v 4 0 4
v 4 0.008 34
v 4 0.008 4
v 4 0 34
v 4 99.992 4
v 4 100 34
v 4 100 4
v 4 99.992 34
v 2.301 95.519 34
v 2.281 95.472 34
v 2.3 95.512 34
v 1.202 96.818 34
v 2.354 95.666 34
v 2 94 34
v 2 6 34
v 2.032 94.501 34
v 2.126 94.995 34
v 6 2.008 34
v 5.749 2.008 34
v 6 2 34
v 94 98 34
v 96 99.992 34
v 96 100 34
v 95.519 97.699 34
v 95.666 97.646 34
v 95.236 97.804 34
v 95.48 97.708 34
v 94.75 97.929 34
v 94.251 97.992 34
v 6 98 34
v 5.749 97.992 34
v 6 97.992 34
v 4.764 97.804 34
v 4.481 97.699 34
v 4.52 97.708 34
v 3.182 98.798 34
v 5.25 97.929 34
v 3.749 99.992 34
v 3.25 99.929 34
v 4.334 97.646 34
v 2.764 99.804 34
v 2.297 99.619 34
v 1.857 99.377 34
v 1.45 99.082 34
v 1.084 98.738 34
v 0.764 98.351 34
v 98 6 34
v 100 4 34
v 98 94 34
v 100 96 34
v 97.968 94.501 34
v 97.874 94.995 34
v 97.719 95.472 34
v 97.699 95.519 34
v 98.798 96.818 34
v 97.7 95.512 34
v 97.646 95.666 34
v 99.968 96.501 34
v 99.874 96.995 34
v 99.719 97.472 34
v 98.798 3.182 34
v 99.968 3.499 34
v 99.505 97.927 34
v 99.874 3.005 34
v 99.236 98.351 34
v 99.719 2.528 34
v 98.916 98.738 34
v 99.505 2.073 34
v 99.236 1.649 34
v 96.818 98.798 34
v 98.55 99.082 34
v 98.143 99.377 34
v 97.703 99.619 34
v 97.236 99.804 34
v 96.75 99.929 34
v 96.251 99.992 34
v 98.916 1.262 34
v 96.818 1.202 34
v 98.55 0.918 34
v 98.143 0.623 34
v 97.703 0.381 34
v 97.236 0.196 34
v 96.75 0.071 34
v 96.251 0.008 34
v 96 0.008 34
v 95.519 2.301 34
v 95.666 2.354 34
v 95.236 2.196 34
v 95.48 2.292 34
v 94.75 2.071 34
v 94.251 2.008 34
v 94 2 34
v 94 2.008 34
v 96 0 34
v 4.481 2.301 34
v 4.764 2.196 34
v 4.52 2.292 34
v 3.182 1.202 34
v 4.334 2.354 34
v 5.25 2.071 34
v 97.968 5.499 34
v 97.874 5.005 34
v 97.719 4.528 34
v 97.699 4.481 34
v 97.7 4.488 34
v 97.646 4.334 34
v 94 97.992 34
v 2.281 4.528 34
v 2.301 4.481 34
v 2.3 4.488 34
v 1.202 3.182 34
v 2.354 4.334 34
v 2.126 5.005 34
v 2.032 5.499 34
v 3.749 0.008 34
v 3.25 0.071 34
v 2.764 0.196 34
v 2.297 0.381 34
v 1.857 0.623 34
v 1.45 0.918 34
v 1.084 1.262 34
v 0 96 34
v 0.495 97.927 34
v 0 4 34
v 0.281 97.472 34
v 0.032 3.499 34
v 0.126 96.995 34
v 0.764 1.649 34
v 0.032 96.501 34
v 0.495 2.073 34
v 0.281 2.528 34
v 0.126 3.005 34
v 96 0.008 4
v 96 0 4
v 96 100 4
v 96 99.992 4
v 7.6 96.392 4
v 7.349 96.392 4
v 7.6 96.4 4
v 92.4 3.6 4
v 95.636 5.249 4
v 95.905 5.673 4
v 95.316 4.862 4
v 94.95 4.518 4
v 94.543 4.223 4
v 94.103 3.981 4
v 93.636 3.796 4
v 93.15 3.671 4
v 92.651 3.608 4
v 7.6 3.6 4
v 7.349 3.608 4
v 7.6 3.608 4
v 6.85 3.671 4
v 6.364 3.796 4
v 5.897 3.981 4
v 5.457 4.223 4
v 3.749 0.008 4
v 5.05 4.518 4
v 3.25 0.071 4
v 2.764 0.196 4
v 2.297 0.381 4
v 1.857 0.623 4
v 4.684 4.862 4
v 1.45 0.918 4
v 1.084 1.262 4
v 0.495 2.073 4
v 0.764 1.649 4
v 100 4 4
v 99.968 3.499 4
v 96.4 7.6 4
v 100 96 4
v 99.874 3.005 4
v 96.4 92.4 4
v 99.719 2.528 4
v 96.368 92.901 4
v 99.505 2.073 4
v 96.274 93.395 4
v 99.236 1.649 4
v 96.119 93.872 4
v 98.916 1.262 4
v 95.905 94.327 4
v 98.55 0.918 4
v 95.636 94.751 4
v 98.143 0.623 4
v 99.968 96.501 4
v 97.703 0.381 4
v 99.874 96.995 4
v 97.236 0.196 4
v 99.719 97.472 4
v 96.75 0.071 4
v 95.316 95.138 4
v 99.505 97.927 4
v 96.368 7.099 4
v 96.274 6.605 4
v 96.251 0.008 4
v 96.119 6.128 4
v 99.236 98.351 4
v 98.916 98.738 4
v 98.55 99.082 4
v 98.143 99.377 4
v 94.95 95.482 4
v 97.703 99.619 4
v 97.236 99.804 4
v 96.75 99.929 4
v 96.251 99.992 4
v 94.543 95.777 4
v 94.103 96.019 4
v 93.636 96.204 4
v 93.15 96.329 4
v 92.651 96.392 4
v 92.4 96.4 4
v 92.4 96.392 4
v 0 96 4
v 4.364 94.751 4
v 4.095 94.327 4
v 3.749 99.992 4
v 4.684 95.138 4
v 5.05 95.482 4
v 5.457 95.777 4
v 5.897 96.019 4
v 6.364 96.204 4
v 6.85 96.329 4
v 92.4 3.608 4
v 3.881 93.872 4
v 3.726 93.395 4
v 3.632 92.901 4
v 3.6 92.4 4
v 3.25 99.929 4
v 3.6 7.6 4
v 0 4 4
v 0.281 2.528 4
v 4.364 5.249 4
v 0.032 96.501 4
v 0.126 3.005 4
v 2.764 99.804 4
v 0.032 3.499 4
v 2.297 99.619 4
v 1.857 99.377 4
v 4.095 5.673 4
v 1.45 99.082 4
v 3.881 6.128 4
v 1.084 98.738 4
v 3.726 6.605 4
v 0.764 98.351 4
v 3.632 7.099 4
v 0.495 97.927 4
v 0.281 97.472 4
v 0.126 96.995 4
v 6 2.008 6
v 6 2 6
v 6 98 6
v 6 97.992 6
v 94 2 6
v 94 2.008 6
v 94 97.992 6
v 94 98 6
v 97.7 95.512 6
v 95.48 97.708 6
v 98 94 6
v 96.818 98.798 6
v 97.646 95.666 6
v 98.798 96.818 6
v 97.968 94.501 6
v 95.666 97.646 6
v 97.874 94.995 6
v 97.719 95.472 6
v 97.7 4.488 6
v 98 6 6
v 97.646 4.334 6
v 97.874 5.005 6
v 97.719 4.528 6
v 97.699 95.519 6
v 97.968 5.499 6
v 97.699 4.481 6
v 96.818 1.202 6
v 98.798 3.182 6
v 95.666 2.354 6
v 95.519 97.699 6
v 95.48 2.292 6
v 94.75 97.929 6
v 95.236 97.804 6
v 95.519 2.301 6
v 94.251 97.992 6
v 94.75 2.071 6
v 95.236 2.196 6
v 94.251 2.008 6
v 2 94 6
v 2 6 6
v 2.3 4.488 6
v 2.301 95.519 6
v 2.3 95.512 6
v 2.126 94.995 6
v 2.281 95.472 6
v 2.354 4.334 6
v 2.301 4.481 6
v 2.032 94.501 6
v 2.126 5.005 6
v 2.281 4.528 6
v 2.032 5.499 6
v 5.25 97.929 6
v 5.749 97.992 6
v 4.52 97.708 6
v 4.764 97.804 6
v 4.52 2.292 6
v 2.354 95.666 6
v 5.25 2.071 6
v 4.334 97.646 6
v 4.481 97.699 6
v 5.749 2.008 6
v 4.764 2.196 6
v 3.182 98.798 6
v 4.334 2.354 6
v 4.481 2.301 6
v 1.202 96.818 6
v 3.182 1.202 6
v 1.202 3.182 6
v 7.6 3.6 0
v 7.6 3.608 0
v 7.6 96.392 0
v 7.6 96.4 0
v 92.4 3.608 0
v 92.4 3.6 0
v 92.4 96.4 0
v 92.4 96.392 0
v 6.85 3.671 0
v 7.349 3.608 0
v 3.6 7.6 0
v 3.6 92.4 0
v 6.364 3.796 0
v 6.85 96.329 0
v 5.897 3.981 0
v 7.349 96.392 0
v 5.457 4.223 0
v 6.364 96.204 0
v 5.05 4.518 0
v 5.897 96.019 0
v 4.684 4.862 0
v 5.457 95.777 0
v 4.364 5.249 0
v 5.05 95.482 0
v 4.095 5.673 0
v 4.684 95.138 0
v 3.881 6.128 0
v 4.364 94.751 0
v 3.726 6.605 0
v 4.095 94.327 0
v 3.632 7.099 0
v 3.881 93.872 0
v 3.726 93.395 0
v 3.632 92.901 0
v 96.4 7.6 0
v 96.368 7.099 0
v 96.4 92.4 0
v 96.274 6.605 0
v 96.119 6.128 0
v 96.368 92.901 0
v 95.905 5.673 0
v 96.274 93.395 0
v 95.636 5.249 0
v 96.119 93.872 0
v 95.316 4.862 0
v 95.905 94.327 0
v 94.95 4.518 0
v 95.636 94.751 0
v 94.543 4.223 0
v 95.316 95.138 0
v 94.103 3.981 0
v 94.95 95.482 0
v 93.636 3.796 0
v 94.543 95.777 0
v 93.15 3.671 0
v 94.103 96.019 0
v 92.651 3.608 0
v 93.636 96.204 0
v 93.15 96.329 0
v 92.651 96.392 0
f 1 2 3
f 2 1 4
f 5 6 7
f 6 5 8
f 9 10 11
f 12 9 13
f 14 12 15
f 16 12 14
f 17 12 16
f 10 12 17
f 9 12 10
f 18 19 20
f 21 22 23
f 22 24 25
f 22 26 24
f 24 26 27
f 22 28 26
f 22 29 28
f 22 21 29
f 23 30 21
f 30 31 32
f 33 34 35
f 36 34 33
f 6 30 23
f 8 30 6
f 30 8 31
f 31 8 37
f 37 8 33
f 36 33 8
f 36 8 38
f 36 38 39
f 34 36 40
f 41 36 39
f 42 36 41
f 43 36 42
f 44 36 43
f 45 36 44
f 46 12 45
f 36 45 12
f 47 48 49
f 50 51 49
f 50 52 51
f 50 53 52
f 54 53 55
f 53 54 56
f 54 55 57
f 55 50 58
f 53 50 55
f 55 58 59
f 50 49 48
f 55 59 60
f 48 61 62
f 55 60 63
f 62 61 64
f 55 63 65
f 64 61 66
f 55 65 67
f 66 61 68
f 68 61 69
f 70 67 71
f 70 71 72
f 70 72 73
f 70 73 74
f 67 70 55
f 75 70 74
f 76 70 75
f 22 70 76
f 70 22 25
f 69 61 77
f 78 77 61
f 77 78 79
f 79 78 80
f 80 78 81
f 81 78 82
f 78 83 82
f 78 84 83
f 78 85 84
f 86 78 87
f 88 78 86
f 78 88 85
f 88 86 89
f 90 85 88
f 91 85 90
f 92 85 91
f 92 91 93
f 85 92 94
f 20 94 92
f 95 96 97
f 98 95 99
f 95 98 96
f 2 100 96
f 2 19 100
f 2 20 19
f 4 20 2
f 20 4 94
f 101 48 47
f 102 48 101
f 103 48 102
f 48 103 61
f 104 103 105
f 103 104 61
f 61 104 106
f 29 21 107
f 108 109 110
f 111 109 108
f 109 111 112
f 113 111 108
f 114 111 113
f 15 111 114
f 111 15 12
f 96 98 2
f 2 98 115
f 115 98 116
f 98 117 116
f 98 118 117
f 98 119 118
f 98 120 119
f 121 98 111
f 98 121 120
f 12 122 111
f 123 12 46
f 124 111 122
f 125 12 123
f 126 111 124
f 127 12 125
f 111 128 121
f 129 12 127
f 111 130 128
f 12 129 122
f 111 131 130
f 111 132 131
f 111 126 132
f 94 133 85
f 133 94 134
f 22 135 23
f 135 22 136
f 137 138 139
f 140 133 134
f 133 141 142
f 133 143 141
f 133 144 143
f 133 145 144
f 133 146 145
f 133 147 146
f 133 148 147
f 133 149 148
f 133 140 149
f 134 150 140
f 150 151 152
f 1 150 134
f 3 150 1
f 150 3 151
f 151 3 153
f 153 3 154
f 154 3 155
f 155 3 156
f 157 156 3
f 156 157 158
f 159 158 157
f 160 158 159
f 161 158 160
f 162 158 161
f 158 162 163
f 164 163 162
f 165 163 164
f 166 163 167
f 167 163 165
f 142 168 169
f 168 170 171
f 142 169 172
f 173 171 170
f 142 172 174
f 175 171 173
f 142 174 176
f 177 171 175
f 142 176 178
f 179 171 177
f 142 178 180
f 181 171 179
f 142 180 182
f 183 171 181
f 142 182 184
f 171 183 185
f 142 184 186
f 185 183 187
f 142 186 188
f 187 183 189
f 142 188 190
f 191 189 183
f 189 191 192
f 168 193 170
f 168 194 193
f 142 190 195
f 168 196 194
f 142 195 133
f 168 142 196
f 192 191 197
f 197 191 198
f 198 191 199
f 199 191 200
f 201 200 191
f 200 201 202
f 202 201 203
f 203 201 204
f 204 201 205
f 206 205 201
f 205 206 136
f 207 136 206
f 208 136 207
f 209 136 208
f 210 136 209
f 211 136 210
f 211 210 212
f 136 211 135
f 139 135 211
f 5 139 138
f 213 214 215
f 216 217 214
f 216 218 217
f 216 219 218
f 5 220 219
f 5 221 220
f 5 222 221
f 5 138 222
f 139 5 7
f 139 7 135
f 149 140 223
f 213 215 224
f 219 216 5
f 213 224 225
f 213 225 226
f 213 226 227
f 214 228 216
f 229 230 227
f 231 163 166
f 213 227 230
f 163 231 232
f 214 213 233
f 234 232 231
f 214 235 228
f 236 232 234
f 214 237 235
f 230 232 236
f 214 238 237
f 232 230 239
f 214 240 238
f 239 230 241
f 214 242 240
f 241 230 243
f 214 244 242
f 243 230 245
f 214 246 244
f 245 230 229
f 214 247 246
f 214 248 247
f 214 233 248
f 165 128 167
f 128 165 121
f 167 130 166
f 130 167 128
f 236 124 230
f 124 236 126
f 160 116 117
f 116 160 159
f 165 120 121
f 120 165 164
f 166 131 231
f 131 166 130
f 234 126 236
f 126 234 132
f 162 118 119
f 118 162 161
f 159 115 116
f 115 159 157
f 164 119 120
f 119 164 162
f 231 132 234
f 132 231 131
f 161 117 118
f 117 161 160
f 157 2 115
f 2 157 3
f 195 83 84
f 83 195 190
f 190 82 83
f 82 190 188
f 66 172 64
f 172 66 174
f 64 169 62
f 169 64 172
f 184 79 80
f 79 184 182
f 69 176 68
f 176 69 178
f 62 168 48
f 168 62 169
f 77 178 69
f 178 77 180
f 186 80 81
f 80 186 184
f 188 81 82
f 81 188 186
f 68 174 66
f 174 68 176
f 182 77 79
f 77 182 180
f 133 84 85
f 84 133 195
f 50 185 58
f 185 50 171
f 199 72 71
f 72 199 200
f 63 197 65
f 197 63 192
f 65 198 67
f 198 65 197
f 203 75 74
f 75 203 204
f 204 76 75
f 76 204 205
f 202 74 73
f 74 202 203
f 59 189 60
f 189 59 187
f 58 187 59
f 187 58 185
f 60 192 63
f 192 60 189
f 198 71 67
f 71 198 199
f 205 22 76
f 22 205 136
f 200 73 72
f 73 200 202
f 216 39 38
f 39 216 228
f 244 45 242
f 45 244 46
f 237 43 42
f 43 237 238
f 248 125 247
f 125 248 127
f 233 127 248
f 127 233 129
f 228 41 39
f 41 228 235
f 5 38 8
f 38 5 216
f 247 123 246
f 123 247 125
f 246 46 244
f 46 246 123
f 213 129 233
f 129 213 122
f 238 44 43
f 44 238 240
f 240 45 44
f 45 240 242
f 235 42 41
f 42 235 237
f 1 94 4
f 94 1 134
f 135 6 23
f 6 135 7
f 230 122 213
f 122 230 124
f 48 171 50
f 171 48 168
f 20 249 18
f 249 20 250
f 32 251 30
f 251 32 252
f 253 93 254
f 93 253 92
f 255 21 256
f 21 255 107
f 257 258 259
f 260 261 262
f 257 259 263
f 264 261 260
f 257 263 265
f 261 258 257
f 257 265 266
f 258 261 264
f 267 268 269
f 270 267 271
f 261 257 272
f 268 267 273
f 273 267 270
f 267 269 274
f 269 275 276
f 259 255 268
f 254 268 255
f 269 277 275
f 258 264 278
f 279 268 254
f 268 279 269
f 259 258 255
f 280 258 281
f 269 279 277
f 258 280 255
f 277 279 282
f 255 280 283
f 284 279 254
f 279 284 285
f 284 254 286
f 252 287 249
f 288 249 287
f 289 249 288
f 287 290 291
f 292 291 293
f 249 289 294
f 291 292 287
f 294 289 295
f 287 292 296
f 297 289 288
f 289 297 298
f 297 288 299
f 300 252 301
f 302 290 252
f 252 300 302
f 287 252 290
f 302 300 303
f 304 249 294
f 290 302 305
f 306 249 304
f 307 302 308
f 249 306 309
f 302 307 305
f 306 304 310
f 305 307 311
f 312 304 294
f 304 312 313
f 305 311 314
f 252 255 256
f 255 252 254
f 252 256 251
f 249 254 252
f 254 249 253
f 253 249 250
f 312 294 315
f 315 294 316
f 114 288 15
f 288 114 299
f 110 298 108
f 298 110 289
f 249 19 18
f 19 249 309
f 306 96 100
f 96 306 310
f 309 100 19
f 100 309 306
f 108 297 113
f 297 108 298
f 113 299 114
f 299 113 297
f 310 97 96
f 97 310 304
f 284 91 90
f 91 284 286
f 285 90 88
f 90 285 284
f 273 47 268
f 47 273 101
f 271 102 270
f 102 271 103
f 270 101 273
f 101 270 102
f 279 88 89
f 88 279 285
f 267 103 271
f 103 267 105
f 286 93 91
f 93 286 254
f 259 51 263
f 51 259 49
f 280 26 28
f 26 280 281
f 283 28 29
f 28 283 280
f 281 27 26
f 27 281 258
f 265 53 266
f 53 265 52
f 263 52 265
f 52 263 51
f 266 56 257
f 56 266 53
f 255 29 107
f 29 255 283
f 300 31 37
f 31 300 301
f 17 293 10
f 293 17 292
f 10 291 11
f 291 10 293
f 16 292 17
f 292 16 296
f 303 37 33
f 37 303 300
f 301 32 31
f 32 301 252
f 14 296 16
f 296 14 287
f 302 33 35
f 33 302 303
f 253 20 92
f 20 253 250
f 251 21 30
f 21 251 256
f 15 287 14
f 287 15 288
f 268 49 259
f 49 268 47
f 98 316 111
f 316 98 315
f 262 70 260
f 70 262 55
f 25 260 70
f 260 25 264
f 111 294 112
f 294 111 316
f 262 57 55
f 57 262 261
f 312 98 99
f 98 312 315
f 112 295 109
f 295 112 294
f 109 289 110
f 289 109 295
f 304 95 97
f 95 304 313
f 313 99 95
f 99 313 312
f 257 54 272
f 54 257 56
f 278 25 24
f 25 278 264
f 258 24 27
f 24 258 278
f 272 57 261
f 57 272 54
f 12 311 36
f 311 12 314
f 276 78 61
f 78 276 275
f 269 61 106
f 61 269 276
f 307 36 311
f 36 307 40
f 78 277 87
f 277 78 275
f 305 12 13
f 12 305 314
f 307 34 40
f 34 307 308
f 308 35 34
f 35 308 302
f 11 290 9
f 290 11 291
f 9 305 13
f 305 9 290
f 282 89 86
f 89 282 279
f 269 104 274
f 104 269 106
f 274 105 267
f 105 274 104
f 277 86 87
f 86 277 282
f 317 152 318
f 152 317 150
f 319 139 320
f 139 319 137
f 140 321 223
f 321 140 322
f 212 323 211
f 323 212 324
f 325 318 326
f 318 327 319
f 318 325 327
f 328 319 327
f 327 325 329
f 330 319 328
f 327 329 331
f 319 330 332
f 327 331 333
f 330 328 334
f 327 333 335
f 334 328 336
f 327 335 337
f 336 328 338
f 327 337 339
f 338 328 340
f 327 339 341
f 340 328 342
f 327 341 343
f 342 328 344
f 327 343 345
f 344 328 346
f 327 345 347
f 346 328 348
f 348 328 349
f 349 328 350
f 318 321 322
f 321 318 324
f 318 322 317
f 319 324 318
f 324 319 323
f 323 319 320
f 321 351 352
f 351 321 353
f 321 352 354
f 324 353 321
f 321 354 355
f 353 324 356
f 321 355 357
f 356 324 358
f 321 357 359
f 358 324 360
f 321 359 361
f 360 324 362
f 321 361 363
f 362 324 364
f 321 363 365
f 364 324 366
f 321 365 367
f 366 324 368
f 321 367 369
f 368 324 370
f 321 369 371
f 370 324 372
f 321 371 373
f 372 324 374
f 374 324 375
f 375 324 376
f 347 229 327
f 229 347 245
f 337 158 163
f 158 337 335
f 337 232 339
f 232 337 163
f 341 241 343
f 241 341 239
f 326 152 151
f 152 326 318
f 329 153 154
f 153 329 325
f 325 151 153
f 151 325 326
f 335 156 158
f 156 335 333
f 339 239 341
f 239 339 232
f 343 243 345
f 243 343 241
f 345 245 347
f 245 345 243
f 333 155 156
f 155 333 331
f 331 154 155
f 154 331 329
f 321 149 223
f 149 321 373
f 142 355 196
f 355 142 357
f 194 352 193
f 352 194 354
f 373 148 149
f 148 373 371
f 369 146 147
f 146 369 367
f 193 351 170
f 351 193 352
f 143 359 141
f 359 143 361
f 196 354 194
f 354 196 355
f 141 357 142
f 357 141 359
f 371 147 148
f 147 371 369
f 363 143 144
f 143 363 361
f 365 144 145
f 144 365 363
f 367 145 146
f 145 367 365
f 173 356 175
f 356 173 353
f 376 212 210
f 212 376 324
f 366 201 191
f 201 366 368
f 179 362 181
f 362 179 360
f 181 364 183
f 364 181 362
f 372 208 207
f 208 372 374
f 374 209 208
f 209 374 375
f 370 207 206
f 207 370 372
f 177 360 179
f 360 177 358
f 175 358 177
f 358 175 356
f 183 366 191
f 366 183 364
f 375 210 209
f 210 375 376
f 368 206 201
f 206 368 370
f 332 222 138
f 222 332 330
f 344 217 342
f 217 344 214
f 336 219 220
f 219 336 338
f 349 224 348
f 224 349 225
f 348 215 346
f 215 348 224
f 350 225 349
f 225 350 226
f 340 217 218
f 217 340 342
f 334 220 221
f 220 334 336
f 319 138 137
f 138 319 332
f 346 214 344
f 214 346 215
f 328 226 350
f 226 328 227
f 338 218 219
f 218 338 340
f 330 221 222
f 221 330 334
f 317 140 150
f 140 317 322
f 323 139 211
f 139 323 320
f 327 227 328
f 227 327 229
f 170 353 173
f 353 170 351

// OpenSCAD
// file: token-organizer-separator-module.scad
module renderSeparator(x, y, z, r, s) {
  union() {
    difference() {
      translate([0, 0, z / 2]) cube([x - r * 1.75, y, z], center=true);
      translate([0, 0, z - z / 4]) cube([y + s * 2, y + s * 2, z / 2 + s * 2], center=true);
    }

    for (i = [-1:1]) {
      if (i != 0) {
        intersection() {
          translate([i * (x - r * 4) / 2, 0, z / 2]) cylinder(r=r - s * 2, h=z, center=true);
          translate([i * (x - r * 2) / 2, 0, z / 2]) cylinder(r=r - s * 2, h=z, center=true);
        }
      }
    }
  }
}
// file: token-organizer-box-module.scad
include <token-organizer-separator-module.scad>

module renderBox(x, y, z, r, t, i, s) {
  translate([0, 0, i]) {
    difference() {
      renderBase(x, y, z, r);
      translate([r / 2, r / 2, r / 2]) renderBase(x - r, y - r, z, r);
      translate([x / 2, y / 2, r / 2]) rotate([0, 0, 45]) renderSeparator(sqrt(x * x + y * y) + s * 2, t + s * 2, z - r / 2, r, s);
      translate([x / 2, y / 2, r / 2]) rotate([0, 0, 315]) renderSeparator(sqrt(x * x + y * y) + s * 2, t + s * 2, z - r / 2, r, s);
    }

    translate([r - s, r - s, -i]) renderBase(x - (r - s) * 2, y - (r - s) * 2, i, r);
  }
}

module renderBase(x, y, z, r) {
  union() {
    translate([r, r, 0]) cube([x - r * 2, y - r * 2, z]);

    translate([r, r, 0]) cylinder(r=r, h=z);
    translate([x - r, r, 0]) cylinder(r=r, h=z);
    translate([x - r, y - r, 0]) cylinder(r=r, h=z);
    translate([r, y - r, 0]) cylinder(r=r, h=z);

    translate([r, 0, 0]) cube([x - r * 2, r, z]);
    translate([r, y - r, 0]) cube([x - r * 2, r, z]);
    translate([0, r, 0]) cube([r, y - r * 2, z]);
    translate([x - r, r, 0]) cube([r, y - r * 2, z]);
  }
}
// main file
include <token-organizer-box-module.scad>
$fn = 50;

sizeX = 100;
sizeY = 100;
sizeZ = 30;
spacing = .4;
thickness = 2;
radius = 4;
inset = 4;

renderBox(sizeX, sizeY, sizeZ, radius, thickness, inset, spacing);
